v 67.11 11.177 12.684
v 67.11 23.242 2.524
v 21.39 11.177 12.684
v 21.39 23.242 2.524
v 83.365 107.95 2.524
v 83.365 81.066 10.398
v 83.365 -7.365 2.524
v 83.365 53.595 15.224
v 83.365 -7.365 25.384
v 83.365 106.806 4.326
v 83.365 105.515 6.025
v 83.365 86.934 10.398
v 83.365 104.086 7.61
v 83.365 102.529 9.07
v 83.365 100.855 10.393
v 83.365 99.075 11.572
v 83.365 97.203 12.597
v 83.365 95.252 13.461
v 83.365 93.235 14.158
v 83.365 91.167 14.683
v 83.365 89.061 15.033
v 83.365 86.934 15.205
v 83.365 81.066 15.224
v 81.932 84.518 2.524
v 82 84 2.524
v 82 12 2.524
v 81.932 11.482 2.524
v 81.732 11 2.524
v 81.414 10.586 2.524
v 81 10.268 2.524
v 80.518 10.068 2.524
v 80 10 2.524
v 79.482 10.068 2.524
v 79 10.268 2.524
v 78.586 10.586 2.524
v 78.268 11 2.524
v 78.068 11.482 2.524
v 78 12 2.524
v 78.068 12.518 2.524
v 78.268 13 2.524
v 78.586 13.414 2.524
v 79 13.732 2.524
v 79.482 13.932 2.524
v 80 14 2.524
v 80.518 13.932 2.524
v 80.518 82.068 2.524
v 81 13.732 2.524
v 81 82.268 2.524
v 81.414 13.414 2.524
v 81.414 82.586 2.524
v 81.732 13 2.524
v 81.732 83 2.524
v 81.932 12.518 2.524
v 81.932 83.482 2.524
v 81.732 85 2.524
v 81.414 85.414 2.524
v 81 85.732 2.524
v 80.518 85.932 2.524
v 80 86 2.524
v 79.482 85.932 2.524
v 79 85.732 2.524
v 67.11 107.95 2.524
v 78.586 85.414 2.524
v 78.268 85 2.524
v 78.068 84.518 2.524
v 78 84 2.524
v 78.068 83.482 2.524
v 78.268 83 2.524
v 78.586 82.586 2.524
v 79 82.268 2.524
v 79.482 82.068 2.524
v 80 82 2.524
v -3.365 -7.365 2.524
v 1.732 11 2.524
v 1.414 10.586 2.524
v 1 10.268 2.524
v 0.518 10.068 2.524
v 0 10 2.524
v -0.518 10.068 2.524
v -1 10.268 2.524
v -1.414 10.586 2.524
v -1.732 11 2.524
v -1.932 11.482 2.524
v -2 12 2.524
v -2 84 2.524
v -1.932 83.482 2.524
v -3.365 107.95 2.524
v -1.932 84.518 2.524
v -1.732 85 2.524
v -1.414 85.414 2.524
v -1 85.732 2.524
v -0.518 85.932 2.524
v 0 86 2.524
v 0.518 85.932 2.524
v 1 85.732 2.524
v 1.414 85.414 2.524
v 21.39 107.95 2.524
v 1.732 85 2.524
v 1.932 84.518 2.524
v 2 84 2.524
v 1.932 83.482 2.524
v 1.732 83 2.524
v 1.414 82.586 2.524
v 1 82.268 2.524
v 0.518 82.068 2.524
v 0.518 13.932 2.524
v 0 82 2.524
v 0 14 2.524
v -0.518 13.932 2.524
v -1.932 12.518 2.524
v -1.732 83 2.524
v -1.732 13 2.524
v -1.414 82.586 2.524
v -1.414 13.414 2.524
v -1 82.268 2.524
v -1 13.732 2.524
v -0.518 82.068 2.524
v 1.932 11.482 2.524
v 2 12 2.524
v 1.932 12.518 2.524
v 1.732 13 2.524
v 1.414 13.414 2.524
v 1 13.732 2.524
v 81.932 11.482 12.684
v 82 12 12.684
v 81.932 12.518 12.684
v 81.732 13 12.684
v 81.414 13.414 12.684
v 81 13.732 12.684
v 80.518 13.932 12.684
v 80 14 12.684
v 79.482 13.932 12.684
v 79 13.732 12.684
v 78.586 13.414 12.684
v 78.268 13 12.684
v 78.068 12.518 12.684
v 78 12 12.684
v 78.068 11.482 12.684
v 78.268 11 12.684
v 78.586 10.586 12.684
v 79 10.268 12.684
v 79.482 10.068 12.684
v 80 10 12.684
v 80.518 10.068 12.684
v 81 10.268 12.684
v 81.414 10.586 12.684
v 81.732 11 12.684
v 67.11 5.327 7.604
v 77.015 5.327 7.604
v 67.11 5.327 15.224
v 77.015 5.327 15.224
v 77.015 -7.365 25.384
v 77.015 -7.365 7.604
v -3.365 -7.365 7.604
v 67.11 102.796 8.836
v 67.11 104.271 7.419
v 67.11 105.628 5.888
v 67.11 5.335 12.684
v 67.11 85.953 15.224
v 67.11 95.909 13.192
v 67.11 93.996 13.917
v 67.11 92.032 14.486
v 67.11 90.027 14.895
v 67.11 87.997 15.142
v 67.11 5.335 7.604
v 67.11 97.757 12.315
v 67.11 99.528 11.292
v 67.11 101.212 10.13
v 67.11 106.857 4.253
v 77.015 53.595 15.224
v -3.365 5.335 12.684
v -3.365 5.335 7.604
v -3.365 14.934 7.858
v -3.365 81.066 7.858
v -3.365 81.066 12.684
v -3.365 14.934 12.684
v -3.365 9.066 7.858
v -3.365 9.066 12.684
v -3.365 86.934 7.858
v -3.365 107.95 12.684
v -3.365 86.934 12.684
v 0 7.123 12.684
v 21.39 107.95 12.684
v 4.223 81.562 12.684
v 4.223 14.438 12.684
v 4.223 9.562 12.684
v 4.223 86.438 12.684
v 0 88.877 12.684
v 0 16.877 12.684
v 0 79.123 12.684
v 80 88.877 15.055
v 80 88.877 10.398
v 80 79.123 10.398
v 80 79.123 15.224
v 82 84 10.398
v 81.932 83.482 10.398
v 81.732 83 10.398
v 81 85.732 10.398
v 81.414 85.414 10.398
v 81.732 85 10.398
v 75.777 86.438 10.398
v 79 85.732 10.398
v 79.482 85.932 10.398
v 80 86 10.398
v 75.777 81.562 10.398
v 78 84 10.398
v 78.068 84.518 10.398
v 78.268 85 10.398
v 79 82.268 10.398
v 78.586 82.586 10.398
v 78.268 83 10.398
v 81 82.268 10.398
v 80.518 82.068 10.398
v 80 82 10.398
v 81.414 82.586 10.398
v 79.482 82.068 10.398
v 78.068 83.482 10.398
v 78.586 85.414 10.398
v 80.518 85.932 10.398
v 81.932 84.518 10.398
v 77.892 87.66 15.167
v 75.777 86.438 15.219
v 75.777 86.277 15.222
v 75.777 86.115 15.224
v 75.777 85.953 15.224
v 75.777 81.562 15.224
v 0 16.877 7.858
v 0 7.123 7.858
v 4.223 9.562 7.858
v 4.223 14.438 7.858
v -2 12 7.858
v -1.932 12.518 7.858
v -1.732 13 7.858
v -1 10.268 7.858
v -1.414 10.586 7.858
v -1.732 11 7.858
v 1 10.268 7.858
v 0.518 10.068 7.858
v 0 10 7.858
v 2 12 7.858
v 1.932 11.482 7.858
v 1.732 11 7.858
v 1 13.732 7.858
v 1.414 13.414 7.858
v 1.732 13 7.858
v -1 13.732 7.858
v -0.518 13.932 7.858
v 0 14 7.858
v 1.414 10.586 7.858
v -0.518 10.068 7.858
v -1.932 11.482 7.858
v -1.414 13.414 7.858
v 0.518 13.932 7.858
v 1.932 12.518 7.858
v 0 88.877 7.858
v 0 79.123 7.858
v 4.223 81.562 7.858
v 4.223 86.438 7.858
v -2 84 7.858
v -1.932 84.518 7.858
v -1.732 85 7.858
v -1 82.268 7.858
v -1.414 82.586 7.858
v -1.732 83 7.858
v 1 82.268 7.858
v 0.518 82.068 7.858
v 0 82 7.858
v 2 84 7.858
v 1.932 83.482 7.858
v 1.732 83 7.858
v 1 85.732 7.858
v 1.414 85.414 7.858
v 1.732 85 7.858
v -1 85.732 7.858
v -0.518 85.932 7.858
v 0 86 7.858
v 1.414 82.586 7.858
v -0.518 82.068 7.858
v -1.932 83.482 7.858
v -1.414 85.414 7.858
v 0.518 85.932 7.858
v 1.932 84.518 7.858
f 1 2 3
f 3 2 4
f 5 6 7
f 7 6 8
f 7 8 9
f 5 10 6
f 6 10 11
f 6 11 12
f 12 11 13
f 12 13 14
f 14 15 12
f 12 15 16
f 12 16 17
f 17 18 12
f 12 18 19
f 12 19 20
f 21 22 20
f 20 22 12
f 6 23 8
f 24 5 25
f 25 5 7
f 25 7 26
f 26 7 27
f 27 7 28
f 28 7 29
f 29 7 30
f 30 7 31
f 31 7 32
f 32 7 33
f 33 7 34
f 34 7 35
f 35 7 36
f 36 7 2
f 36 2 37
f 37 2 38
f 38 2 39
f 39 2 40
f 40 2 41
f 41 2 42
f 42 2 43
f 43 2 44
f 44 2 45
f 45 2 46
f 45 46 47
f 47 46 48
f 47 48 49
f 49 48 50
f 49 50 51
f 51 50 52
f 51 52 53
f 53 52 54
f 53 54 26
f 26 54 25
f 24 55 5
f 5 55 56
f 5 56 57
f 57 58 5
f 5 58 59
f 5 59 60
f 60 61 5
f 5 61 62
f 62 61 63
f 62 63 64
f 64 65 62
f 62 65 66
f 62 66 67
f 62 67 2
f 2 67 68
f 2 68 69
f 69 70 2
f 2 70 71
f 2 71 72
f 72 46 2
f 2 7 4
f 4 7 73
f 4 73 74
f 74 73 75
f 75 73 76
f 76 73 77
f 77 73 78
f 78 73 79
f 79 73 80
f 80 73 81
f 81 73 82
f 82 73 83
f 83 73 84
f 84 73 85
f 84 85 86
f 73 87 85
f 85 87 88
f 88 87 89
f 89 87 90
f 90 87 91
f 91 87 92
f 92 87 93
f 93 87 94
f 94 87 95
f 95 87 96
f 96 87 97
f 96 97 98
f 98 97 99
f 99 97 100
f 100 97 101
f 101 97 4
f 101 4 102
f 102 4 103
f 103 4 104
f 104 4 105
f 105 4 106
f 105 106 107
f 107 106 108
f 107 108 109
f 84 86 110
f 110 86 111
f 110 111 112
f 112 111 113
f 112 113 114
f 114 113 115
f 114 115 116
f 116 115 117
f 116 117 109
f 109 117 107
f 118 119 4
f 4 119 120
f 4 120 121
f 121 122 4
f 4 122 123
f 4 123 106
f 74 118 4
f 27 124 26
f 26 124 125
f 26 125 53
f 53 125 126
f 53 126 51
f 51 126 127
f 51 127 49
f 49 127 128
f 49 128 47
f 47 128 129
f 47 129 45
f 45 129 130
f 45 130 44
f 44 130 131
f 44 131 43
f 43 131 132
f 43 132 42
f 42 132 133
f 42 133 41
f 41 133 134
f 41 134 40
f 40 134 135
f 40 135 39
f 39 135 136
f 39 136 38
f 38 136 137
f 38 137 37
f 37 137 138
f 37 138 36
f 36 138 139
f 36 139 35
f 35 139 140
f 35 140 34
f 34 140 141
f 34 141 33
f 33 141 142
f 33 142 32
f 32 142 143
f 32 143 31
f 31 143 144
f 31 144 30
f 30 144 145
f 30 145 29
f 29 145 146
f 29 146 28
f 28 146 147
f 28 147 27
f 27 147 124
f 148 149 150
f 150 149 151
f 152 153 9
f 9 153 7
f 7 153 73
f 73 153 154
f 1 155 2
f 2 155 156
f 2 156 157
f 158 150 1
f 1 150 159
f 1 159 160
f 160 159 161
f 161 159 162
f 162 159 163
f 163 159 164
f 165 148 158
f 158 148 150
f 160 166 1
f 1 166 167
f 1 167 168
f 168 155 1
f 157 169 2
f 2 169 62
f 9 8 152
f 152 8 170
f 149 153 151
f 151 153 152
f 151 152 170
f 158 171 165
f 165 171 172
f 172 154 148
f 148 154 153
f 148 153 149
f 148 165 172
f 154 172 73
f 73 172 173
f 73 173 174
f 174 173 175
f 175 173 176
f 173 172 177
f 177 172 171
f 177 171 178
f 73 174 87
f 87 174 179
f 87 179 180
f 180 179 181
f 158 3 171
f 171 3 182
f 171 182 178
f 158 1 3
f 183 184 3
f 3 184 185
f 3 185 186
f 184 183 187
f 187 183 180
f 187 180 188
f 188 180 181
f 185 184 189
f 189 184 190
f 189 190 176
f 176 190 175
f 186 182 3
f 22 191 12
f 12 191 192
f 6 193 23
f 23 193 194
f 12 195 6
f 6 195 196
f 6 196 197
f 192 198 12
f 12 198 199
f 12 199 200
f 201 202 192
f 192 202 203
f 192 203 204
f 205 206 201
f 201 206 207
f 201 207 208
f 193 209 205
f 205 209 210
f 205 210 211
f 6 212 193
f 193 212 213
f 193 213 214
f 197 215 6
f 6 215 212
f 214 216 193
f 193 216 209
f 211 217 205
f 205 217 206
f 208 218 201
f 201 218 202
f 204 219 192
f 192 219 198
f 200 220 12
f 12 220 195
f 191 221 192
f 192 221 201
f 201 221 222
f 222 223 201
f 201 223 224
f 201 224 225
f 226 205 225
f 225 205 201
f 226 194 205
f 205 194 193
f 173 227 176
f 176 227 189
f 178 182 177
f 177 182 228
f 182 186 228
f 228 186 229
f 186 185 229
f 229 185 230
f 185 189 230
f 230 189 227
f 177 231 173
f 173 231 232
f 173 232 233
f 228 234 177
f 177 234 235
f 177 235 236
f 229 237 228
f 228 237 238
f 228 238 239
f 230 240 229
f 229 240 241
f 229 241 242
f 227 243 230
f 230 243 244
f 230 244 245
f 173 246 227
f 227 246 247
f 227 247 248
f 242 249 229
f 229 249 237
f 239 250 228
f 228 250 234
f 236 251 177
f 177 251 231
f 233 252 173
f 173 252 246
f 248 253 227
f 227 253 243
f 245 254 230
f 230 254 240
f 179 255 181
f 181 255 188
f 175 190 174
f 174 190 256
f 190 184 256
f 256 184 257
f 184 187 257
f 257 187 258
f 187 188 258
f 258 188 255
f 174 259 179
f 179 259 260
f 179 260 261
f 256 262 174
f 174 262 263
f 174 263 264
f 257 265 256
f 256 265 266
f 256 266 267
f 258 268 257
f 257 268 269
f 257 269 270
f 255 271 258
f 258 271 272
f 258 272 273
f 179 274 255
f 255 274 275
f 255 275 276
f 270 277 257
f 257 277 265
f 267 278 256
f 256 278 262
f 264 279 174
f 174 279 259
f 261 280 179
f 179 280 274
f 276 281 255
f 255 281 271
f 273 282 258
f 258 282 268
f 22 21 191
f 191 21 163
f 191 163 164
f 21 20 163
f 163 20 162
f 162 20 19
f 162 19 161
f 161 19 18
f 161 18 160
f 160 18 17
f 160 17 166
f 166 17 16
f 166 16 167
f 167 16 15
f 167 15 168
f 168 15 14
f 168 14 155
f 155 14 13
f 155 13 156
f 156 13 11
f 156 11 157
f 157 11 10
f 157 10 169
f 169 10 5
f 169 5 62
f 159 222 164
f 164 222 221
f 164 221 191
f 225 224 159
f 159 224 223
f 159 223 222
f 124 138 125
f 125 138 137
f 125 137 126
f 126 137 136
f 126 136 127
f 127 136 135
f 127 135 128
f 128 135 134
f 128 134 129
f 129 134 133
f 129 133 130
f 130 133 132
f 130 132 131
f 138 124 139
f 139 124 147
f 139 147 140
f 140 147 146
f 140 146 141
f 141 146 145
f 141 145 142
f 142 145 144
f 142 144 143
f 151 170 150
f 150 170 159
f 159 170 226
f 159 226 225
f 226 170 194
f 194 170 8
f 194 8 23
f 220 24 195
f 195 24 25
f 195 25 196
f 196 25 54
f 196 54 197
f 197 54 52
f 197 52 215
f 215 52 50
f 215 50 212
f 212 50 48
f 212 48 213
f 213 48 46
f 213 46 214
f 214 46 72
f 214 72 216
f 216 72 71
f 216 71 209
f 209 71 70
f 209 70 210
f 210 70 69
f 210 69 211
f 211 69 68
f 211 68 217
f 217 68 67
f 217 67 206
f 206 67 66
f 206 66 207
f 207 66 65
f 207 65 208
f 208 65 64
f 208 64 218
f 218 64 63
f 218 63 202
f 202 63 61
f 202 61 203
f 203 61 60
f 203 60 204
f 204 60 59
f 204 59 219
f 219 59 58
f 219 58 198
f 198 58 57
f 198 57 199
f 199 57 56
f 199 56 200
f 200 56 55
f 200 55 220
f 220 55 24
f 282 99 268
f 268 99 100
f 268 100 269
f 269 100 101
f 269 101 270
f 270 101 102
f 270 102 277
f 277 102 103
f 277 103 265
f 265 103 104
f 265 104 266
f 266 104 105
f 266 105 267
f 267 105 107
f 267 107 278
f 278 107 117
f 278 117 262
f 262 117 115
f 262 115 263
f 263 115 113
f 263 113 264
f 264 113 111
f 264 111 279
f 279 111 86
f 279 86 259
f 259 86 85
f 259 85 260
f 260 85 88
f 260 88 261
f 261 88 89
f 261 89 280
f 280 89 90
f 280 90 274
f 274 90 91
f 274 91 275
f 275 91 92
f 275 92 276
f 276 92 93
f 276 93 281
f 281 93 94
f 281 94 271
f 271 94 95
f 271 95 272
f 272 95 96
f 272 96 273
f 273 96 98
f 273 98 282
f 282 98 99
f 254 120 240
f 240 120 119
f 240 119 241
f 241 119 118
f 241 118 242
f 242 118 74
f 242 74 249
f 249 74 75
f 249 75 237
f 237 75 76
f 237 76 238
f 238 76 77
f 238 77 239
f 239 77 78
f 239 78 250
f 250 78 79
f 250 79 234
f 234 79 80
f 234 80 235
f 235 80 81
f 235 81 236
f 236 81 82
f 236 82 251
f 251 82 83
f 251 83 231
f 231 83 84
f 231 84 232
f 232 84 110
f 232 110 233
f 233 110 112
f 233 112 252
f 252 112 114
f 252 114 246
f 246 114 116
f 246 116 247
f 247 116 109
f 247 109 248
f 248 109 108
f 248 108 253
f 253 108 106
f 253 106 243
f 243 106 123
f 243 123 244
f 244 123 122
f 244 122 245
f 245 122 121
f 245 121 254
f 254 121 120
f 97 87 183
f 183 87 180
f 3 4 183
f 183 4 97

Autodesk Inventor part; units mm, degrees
ref_plane "YZ Plane" through (0, 0, 0) normal (1, 0, 0) x (0, 1, 0)
ref_plane "XZ Plane" through (0, 0, 0) normal (0, 1, 0) x (-1, 0, 0)
ref_plane "Work Plane1" through (0, 0, 2.5241) normal (0, 0, 1) x (1, 0, 0)
sketch "Sketch1" plane through (0, 0, 2.5241) normal (0, 0, 1) x (1, 0, 0)
  line L0 (-4, 272) -> (-4, -8) construction
  line L1 (4, 272) -> (4, -8) construction
  line L2 (76, 272) -> (76, -8) construction
  line L3 (84, 272) -> (84, -8) construction
  line L4 (84, -8) -> (-4, -8) construction
  line L5 (84, 106) -> (80, 106) construction
  line L6 (80, 110) -> (76, 110) construction
  line L7 (-3.365, 272) -> (-3.365, -7.365) construction
  line L8 (-3.365, -7.365) -> (83.365, -7.365) construction
  line L9 (83.365, -7.365) -> (83.365, 272) construction
  line L10 (-3.365, -7.365) -> (83.365, -7.365)
  line L11 (83.365, -7.365) -> (83.365, 107.95)
  line L12 (-3.365, 107.95) -> (-3.365, -7.365)
  circle A0 centre (0, 12) radius 2
  circle A1 centre (80, 12) radius 2
  circle A2 centre (0, 84) radius 2
  circle A3 centre (80, 84) radius 2
  line L13 (21.39, 107.95) -> (21.39, 11.177)
  line L14 (21.39, 11.177) -> (67.11, 11.177)
  line L15 (67.11, 11.177) -> (67.11, 107.95)
  line L16 (83.365, 107.95) -> (67.11, 107.95)
  line L17 (21.39, 107.95) -> (-3.365, 107.95)
  point P0 (0, 0)
  dimension "d0" = 0.635
  dimension "d1" = 8.89
  dimension "d2" = 45.72
  dimension "d18" = 18.542
extrude "Extrusion1" add sketch "Sketch1" along normal blind 10.16
sketch "Sketch2" plane through (0, 0, 12.6841) normal (0, 0, 1) x (1, 0, 0)
  line L0 (83.365, 107.95) -> (67.11, 107.95) projected
  line L1 (83.365, -7.365) -> (83.365, 107.95) projected
  line L2 (67.11, 107.95) -> (83.365, 107.95)
  line L3 (83.365, 107.95) -> (83.365, 23.8125)
  line L4 (67.11, 23.8125) -> (67.11, 107.95)
  circle A0 centre (80, 84) radius 2 projected
  circle A1 centre (80, 84) radius 1.9939
  line L5 (83.365, 23.8125) -> (83.365, -7.365)
  line L6 (83.365, -7.365) -> (67.11, -7.365)
  line L7 (67.11, -7.365) -> (67.11, 23.8125)
  point P0 (0, 0)
  dimension "d5" = 3.9878
extrude "Extrusion2" add sketch "Sketch2" along normal blind 2.54 contours L1 L6 L7 L4 L0
fillet "Fillet1" radius 25.4 1 edges at (75.2375, 107.95, 15.2241)
sketch "Sketch3" plane through (0, 0, 12.6841) normal (0, 0, 1) x (1, 0, 0)
  circle A0 centre (0, 12) radius 2 construction
  circle A1 centre (0, 12) radius 4.8768 construction
  circle A2 centre (0, 84) radius 2 construction
  circle A3 centre (0, 84) radius 4.8768 construction
  circle A4 centre (80, 12) radius 2 construction
  line L0 (0, 16.8768) -> (4.2234, 14.4384)
  line L1 (4.2234, 14.4384) -> (4.2234, 9.5616)
  line L2 (4.2234, 9.5616) -> (0, 7.1232)
  line L3 (0, 7.1232) -> (-4.2234, 9.5616)
  line L4 (-4.2234, 9.5616) -> (-4.2234, 14.4384)
  line L5 (-4.2234, 14.4384) -> (0, 16.8768)
  line L6 (0, 88.8768) -> (4.2234, 86.4384)
  line L7 (4.2234, 86.4384) -> (4.2234, 81.5616)
  line L8 (4.2234, 81.5616) -> (0, 79.1232)
  line L9 (0, 79.1232) -> (-4.2234, 81.5616)
  line L10 (-4.2234, 81.5616) -> (-4.2234, 86.4384)
  line L11 (-4.2234, 86.4384) -> (0, 88.8768)
  point P0 (0, 0)
  dimension "d9" = 9.7536
  dimension "d10" = 9.7536
extrude "Extrusion3" cut sketch "Sketch3" against normal blind 4.826
sketch "Sketch4" plane through (0, 0, 15.2241) normal (0, 0, 1) x (1, 0, 0)
  circle A0 centre (80, 84) radius 2 construction
  circle A1 centre (80, 84) radius 4.8768 construction
  line L0 (80, 88.8768) -> (84.2234, 86.4384)
  line L1 (84.2234, 86.4384) -> (84.2234, 81.5616)
  line L2 (84.2234, 81.5616) -> (80, 79.1232)
  line L3 (80, 79.1232) -> (75.7766, 81.5616)
  line L4 (75.7766, 81.5616) -> (75.7766, 86.4384)
  line L5 (75.7766, 86.4384) -> (80, 88.8768)
  point P0 (0, 0)
  dimension "d14" = 9.7536
extrude "Extrusion4" cut sketch "Sketch4" against normal blind 4.826
sketch "Sketch5" plane through (0, 0, 12.6841) normal (0, 0, 1) x (1, 0, 0)
  line L0 (-3.365, -7.365) -> (67.11, -7.365) projected
  line L1 (-3.365, -7.365) -> (67.11, -7.365)
  line L2 (67.11, 5.335) -> (-3.365, 5.335)
  line L3 (-3.365, 5.335) -> (-3.365, -7.365)
  line L4 (67.11, 5.335) -> (67.11, -7.365)
  line L5 (-3.365, -7.365) -> (83.365, -7.365) projected
  point P0 (0, 0)
extrude "Extrusion5" cut sketch "Sketch5" against normal blind 5.08
sketch "Sketch13" plane through (83.365, -7.365, 15.2241) normal (1, 0, 0) x (0, 0, -1)
  line L0 (0, 0) -> (7.62, 0) projected
  line L1 (0, 0) -> (-10.16, 0)
  line L2 (0, 93.318) -> (0, 0) projected
  line L3 (0, 0) -> (0, 60.96)
  line L4 (0, 60.96) -> (-10.16, 0)
  point P0 (15.2241, 7.365)
  dimension "d54" = 10.16
  dimension "d55" = 60.96
extrude "Extrusion13" add sketch "Sketch13" against normal blind 6.35
sketch "Sketch14" plane through (0, 0, 15.2241) normal (0, 0, 1) x (1, 0, 0)
  line L0 (67.11, -7.365) -> (77.015, -7.365) projected
  line L1 (77.015, -7.365) -> (77.015, 53.595) projected
  line L2 (67.11, -7.365) -> (77.015, -7.365)
  line L3 (77.015, -7.365) -> (77.015, 5.3272)
  line L4 (77.015, 5.3272) -> (67.11, 5.3272)
  line L5 (67.11, 5.3272) -> (67.11, -7.365)
  point P0 (0, 0)
extrude "Extrusion14" cut sketch "Sketch14" against normal up to surface (7.62 mm away)
sketch "Sketch15" plane through (21.39, 11.177, 2.5241) normal (1, 0, 0) x (0, 0, -1)
  line L0 (0, 0) -> (-10.16, 0) projected
  line L1 (0, 0) -> (-10.16, 0)
  line L2 (0, 0) -> (0, 12.065)
  line L3 (-10.16, 0) -> (-10.16, 96.773) projected
  line L4 (0, 12.065) -> (-10.16, 0)
  point P0 (2.5241, -11.177)
  dimension "d60" = 12.065
extrude "Extrusion15" add sketch "Sketch15" along normal up to next
equation "\"d61\" = d60"
properties part number "Back Wall with slant"
